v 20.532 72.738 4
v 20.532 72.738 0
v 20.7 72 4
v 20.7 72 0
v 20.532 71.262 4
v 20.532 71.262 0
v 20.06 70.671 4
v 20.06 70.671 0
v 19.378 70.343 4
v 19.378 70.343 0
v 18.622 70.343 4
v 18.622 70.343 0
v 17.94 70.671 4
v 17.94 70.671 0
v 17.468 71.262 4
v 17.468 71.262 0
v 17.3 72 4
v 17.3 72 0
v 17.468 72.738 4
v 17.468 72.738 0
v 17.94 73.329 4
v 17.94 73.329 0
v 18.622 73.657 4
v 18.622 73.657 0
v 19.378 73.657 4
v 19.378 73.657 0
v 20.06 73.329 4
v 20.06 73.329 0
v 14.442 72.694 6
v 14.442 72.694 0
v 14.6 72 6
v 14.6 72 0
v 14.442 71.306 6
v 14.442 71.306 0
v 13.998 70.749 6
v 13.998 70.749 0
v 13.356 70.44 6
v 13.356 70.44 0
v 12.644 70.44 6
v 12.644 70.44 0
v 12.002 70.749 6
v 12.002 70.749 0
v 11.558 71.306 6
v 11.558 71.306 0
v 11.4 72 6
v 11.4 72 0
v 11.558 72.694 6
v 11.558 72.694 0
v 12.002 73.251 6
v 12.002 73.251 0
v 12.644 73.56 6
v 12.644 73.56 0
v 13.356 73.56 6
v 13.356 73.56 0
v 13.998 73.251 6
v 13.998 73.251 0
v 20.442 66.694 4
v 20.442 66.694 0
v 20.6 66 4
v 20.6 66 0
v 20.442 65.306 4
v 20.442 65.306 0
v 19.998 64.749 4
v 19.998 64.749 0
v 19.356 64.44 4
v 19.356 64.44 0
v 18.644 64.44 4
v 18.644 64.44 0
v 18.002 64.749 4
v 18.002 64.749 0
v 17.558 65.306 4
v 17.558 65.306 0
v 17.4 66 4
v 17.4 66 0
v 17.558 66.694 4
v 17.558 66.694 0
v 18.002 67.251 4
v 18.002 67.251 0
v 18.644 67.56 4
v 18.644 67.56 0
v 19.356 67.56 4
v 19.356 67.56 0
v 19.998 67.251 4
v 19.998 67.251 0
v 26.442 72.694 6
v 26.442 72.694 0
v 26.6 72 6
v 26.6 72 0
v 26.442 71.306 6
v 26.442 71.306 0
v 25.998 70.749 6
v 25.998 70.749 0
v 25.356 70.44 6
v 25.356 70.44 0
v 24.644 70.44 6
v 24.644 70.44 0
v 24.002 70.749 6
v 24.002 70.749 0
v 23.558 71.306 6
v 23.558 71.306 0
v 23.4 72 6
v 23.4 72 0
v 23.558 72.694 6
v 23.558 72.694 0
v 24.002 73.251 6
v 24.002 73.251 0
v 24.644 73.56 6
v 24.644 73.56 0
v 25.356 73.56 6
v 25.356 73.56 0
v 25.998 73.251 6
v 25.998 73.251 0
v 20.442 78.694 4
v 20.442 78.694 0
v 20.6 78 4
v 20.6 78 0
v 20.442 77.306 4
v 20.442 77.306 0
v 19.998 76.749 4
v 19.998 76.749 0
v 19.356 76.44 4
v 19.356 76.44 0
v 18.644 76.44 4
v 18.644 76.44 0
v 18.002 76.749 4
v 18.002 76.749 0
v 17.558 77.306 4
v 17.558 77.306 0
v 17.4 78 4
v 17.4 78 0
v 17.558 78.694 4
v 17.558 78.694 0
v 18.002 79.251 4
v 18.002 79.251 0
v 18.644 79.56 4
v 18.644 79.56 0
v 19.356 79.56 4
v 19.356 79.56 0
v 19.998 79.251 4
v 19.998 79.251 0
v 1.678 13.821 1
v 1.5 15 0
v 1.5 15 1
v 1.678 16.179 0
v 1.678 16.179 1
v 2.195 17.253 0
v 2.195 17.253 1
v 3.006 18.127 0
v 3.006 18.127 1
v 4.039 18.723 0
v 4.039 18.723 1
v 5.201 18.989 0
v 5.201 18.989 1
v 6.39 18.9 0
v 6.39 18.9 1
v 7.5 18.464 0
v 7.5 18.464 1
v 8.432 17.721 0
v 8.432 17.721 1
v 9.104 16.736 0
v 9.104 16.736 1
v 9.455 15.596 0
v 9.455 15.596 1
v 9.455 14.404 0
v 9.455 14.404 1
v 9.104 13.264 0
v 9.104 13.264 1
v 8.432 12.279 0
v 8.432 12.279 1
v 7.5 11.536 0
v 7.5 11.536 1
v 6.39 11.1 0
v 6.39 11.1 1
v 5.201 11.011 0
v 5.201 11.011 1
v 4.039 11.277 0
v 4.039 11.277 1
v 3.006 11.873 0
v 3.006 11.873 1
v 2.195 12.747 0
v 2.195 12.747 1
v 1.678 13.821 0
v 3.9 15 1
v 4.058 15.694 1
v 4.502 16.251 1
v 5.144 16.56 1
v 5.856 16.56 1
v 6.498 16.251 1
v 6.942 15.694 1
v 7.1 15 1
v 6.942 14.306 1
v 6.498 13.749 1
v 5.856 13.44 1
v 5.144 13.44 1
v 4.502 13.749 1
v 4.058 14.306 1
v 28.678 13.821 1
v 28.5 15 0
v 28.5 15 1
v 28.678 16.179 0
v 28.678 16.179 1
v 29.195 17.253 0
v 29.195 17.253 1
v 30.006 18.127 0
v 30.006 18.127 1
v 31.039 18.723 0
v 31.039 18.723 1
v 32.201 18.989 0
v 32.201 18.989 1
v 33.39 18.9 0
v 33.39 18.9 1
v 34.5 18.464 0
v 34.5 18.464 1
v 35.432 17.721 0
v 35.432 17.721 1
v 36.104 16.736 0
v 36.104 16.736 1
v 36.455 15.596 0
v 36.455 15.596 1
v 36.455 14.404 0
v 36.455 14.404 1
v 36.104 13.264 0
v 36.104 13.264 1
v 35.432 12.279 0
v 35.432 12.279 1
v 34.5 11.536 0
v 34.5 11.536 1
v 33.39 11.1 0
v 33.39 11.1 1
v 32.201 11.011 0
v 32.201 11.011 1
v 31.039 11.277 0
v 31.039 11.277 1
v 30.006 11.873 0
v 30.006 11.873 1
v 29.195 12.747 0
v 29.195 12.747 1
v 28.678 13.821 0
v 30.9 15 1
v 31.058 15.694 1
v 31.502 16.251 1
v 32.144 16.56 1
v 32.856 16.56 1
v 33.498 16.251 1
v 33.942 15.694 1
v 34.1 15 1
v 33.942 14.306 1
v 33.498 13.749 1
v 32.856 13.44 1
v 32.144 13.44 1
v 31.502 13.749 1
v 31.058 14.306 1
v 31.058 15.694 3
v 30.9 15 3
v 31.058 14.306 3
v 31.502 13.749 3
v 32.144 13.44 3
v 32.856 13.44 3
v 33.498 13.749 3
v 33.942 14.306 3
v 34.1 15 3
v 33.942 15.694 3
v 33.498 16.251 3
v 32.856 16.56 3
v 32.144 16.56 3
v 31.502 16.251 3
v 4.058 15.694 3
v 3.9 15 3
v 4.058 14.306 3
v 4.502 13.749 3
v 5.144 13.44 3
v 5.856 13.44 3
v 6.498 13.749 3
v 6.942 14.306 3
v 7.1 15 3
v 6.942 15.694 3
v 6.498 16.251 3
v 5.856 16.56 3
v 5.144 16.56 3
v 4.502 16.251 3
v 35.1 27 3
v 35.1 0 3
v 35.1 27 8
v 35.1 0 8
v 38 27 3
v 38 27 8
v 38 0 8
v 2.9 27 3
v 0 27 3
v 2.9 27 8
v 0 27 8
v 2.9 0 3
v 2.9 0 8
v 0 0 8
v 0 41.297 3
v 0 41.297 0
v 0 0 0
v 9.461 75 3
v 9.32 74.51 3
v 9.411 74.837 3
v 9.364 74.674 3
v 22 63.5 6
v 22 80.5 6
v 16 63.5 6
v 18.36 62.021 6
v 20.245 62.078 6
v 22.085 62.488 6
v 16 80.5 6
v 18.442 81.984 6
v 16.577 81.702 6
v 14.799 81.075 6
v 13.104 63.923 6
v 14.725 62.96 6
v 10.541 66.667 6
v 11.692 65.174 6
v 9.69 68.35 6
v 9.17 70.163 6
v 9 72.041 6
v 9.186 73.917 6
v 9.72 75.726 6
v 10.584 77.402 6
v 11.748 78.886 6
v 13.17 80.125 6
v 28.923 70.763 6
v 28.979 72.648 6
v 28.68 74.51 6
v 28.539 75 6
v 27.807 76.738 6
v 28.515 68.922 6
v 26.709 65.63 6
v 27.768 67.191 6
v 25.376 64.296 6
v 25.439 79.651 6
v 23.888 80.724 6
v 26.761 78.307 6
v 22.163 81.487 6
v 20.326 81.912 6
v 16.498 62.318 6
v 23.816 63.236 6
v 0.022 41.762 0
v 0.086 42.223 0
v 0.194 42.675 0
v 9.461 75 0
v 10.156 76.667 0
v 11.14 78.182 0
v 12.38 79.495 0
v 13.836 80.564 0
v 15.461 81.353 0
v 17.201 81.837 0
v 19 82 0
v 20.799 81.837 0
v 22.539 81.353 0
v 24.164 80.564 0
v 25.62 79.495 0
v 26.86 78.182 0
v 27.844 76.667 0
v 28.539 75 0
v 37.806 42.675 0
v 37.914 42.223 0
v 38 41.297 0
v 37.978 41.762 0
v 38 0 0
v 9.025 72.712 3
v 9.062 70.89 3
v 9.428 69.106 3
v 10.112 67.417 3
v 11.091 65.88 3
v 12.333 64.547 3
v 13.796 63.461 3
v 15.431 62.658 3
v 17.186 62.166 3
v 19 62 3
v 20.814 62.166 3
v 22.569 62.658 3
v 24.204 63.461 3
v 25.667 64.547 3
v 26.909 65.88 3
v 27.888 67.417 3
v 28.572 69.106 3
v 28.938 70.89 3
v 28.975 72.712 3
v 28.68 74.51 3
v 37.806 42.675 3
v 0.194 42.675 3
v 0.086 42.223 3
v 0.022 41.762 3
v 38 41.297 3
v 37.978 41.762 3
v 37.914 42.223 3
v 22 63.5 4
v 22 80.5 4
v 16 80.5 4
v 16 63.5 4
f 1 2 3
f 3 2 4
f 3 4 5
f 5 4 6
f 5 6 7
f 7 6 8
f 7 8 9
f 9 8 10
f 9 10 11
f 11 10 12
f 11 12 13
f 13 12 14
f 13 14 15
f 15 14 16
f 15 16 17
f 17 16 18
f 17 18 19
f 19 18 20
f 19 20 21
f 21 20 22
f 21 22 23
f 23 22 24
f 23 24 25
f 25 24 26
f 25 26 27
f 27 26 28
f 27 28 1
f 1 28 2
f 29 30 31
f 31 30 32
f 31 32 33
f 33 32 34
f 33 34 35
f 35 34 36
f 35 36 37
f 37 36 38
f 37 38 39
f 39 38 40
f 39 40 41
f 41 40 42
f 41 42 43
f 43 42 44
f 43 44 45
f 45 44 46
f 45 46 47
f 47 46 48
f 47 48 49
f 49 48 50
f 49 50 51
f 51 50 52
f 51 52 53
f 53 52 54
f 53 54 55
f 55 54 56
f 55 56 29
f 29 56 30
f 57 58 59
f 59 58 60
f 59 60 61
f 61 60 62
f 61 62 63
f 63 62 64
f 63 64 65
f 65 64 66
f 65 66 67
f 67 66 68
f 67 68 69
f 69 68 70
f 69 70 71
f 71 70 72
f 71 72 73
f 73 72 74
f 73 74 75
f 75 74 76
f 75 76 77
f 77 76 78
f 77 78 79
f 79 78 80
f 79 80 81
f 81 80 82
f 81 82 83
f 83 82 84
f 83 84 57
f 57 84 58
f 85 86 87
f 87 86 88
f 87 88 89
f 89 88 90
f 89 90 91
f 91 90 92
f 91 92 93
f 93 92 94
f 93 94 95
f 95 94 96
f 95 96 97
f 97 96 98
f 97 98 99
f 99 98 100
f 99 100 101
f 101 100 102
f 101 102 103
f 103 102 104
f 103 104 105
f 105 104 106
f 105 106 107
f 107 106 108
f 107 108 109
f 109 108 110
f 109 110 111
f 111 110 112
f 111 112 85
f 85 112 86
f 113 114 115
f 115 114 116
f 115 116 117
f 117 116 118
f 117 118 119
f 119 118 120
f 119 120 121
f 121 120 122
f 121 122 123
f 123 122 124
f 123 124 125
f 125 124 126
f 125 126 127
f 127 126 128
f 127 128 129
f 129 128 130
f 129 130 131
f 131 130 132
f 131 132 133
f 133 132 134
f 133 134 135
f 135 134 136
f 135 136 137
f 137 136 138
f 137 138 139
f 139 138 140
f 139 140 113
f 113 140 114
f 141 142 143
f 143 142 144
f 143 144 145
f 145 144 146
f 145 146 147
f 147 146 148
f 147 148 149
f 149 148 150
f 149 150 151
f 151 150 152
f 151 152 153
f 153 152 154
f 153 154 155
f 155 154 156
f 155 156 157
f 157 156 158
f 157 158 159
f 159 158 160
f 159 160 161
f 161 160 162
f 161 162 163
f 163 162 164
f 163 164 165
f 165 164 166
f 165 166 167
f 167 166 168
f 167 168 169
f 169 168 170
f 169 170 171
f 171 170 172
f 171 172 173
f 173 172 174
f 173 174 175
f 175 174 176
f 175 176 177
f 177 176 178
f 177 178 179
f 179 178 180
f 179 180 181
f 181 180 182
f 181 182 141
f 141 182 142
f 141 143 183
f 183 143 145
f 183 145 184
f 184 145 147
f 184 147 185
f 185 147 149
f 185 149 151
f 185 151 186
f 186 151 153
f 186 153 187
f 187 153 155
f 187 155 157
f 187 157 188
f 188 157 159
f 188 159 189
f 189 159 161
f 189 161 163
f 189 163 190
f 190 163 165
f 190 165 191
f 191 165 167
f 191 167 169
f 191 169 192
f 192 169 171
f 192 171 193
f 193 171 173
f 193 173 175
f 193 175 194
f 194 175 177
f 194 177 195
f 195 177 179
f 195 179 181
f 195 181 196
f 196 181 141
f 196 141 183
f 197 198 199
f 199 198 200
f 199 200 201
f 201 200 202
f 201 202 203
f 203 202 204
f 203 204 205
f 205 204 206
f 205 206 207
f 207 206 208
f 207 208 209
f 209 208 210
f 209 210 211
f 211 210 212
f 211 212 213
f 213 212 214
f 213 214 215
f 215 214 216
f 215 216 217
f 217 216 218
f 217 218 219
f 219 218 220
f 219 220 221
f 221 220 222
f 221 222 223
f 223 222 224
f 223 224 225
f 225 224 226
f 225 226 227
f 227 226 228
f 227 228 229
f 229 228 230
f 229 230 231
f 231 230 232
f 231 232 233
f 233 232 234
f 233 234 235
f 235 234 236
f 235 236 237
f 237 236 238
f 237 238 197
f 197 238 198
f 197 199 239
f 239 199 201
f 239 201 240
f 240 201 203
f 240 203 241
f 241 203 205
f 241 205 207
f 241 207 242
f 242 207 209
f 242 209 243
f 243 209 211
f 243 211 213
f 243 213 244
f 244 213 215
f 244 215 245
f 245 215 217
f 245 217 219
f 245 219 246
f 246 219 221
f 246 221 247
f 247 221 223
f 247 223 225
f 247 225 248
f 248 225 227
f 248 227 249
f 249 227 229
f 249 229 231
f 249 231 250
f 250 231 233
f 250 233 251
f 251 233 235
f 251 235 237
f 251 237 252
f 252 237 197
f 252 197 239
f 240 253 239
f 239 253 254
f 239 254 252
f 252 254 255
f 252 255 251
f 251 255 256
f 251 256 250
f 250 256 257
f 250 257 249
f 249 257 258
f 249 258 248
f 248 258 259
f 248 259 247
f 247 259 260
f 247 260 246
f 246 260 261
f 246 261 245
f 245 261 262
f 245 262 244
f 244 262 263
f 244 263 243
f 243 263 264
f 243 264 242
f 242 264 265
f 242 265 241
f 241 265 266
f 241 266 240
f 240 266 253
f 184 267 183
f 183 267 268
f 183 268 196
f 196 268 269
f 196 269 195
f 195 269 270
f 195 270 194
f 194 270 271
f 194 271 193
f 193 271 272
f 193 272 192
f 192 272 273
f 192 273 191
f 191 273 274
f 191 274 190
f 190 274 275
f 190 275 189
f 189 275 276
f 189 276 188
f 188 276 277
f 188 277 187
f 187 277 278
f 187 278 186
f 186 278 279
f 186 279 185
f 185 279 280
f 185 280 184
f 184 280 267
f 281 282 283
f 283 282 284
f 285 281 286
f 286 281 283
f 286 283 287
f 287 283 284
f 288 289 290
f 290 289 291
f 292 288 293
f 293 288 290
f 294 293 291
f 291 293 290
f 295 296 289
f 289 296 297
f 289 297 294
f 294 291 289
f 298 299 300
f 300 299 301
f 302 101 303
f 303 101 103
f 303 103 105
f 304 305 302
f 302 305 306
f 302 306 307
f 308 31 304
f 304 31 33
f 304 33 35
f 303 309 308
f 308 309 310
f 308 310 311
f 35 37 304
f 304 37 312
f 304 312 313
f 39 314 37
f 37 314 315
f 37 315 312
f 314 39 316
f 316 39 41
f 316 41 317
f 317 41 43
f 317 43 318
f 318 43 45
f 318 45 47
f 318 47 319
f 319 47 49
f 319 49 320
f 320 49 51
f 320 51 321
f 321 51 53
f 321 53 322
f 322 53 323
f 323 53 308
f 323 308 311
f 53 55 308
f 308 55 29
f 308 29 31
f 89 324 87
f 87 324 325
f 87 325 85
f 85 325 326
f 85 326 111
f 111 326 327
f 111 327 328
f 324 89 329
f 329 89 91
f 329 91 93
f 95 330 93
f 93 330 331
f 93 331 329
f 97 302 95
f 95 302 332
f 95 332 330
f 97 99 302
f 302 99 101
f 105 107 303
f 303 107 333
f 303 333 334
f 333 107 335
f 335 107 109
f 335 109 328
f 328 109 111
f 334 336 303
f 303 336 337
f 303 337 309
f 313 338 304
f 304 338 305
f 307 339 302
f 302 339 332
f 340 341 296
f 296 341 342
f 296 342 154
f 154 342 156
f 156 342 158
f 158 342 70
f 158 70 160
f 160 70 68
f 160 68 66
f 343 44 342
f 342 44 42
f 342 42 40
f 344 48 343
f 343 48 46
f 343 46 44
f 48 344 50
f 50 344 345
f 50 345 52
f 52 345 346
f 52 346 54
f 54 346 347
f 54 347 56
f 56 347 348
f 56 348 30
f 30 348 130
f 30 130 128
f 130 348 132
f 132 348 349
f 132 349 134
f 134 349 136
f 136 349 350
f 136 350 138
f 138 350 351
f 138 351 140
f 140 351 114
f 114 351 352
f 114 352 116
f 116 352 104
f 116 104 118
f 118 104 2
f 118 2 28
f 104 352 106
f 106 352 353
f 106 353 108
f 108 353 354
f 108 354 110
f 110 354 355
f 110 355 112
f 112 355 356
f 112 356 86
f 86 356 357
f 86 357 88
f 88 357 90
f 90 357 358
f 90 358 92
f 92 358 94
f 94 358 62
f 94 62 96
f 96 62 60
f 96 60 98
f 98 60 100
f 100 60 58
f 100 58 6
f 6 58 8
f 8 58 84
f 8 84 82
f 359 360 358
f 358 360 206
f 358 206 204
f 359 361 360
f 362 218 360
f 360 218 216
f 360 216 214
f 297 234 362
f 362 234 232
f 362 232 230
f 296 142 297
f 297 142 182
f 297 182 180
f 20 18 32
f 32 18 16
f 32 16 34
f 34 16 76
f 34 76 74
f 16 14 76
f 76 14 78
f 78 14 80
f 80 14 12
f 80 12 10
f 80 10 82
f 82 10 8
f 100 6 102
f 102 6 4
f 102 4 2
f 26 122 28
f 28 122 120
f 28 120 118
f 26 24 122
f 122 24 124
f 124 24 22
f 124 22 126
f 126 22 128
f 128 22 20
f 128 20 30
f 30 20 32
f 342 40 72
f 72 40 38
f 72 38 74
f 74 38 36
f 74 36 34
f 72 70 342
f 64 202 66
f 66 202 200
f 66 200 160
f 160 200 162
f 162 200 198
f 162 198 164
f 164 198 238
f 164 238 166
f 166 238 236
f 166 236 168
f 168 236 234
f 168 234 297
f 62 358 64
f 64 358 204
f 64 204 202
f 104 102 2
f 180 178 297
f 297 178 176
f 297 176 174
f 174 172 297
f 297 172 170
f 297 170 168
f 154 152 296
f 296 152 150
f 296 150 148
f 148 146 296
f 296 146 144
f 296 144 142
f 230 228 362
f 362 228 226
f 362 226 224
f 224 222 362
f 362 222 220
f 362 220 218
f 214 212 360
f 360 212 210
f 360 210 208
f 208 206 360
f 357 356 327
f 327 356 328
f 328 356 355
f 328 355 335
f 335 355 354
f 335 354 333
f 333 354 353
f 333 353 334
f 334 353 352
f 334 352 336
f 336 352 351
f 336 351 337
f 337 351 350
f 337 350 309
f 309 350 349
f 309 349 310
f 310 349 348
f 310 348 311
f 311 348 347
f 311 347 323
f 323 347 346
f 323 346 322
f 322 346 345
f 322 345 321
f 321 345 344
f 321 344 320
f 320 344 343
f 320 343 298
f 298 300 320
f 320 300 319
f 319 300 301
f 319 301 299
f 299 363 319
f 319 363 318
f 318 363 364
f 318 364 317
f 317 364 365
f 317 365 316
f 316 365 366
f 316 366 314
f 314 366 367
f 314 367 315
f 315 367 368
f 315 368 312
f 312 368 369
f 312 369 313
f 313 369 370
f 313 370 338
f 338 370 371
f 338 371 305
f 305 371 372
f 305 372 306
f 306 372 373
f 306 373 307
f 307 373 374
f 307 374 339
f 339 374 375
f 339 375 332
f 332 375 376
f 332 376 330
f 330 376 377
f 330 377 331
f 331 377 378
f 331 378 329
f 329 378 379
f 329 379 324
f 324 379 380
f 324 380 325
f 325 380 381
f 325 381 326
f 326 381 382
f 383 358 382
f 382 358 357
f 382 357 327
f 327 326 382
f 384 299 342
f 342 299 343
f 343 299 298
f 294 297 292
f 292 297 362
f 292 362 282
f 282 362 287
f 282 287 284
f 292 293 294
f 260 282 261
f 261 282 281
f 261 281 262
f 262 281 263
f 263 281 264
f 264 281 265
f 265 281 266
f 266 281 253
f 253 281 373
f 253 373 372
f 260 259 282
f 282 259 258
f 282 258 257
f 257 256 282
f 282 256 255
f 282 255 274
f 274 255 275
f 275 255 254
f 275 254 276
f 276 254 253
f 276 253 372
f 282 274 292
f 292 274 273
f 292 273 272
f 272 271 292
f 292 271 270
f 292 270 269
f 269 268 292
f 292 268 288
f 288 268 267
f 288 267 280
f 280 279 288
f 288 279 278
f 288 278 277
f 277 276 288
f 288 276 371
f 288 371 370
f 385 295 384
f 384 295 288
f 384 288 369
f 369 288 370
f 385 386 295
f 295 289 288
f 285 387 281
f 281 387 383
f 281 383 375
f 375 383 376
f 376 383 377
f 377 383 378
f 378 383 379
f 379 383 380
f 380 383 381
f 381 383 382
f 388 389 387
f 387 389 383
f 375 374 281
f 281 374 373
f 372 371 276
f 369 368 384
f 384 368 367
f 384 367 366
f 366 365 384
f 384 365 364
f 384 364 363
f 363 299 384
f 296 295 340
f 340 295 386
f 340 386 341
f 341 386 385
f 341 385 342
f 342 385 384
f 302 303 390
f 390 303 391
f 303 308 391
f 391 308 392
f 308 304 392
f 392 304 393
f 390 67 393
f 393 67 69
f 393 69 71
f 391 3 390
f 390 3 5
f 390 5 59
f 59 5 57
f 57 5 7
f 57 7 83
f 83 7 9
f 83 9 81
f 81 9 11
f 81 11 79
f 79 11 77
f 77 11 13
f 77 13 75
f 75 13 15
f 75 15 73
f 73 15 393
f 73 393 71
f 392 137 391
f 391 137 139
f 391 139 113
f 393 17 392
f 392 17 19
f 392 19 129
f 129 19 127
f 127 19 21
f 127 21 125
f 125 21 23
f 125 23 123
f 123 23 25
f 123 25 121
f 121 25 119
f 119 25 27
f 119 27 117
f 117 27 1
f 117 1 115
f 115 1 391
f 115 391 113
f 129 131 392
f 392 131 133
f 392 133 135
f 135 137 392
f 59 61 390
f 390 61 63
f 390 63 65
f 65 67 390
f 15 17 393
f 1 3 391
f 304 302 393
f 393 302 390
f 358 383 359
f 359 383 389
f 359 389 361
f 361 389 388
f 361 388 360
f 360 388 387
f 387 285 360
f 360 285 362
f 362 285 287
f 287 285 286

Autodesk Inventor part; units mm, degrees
ref_plane "YZ Plane" through (0, 0, 0) normal (1, 0, 0) x (0, 1, 0)
ref_plane "XZ Plane" through (0, 0, 0) normal (0, 1, 0) x (-1, 0, 0)
ref_plane "XY Plane" through (0, 0, 0) normal (0, 0, 1) x (1, 0, 0)
sketch "スケッチ1" plane through (0, 0, 0) normal (0, 0, 1) x (1, 0, 0)
  line L0 (0, 0) -> (38, 0)
  line L1 (38, 0) -> (38, 42)
  line L2 (38, 42) -> (0, 42)
  line L3 (0, 42) -> (0, 0)
  line L4 (19, 42) -> (19, 72)
  circle A0 centre (19, 72) radius 10
  line L5 (9.4606, 75) -> (28.5394, 75)
  line L6 (9.4606, 75) -> (0, 42)
  line L7 (28.5394, 75) -> (38, 42)
  dimension "d0" = 42
  dimension "d1" = 38
  dimension "d2" = 30
  dimension "d3" = 20
  dimension "d4" = 3
extrude "押し出し1" add sketch "スケッチ1" along normal blind 3
sketch "スケッチ2" plane through (0, 0, 3) normal (0, 0, 1) x (1, 0, 0)
  line L0 (0, 0) -> (38, 0) projected
  line L1 (38, 0) -> (38, 42) projected
  line L2 (38, 42) -> (28.5394, 75) projected
  arc A0 (28.5394, 75) -> (9.4606, 75) centre (19, 72) ccw projected
  circle A1 centre (19, 72) radius 10
  point P0 (9.4606, 75)
  point P1 (28.6799, 74.5099)
extrude "押し出し2" add sketch "スケッチ2" along normal blind 3
sketch "スケッチ4" plane through (0, 0, 3) normal (0, 0, 1) x (1, 0, 0)
  line L0 (0, 42) -> (0, 0) projected
  line L1 (0, 0) -> (2.9, 0)
  line L2 (2.9, 0) -> (2.9, 27)
  line L3 (2.9, 27) -> (0, 27)
  line L4 (0, 27) -> (0, 0)
  line L5 (0, 0) -> (38, 0) projected
  line L6 (38, 0) -> (35.1, 0)
  line L7 (35.1, 0) -> (35.1, 27)
  line L8 (35.1, 27) -> (38, 27)
  line L9 (38, 27) -> (38, 0)
  point P0 (0, 27)
  dimension "d32" = 2.9
  dimension "d33" = 2.9
  dimension "d34" = 27
  dimension "d35" = 27
extrude "押し出し3" add sketch "スケッチ4" along normal blind 5
sketch "スケッチ5" plane through (0, 0, 3) normal (0, 0, 1) x (1, 0, 0)
  line L0 (2.9, 0) -> (35.1, 0) projected
  line L1 (35.1, 27) -> (35.1, 0) projected
  point P0 (0, 0)
  point P1 (5.5, 15)
  point P2 (32.5, 15)
  dimension "d38" = 15
  dimension "d39" = 15
  dimension "d40" = 2.6
  dimension "d41" = 27
hole "穴2" at (5.5, 15, 3) at (32.5, 15, 3) direction (0, 0, -1) diameter 3.2 end through all
sketch "スケッチ7" plane through (0, 0, 0) normal (0, 0, -1) x (-1, 0, 0)
  circle A0 centre (-32.5, 15) radius 1.6 projected
  circle A1 centre (-32.5, 15) radius 4
  circle A2 centre (-5.5, 15) radius 1.6 projected
  circle A3 centre (-5.5, 15) radius 4
  point P0 (0, 0)
  dimension "d58" = 8
  dimension "d59" = 8
extrude "押し出し4" cut sketch "スケッチ7" against normal blind 1
sketch "スケッチ8" plane through (0, 0, 0) normal (0, 0, -1) x (-1, 0, 0)
  circle A0 centre (-5.5, 15) radius 4 projected
  circle A1 centre (-32.5, 15) radius 4 projected
  line L0 (0, 42) -> (0, 0) projected
  line L1 (-9.4606, 75) -> (0, 42) projected
  arc A2 (-9.4606, 75) -> (-28.5394, 75) centre (-19, 72) ccw projected
  line L2 (-38, 42) -> (-28.5394, 75) projected
  line L3 (-38, 0) -> (-38, 42) projected
  line L4 (0, 0) -> (-38, 0) projected
  point P0 (-19, 78)
  point P1 (-25, 72)
  point P2 (-19, 66)
  point P3 (-13, 72)
  dimension "d62" = 6
  dimension "d65" = 360
hole "穴4" at (19, 78, 0) at (25, 72, 0) at (19, 66, 0) at (13, 72, 0) direction (0, 0, 1) diameter 3.2 end through all
sketch "スケッチ9" plane through (0, 0, 0) normal (0, 0, -1) x (-1, 0, 0)
  circle A0 centre (-13, 72) radius 1.6 projected
  circle A1 centre (-19, 66) radius 1.6 projected
  circle A2 centre (-25, 72) radius 1.6 projected
  circle A3 centre (-19, 78) radius 1.6 projected
  circle A4 centre (-5.5, 15) radius 4 projected
  circle A5 centre (-32.5, 15) radius 4 projected
  line L0 (0, 42) -> (0, 0) projected
  line L1 (-9.4606, 75) -> (0, 42) projected
  arc A6 (-9.4606, 75) -> (-28.5394, 75) centre (-19, 72) ccw projected
  line L2 (-38, 42) -> (-28.5394, 75) projected
  line L3 (-38, 0) -> (-38, 42) projected
  line L4 (0, 0) -> (-38, 0) projected
hole "穴5" at (19, 72, 0) direction (0, 0, 1) diameter 3.4 end through all
sketch "スケッチ10" plane through (0, 0, 6) normal (0, 0, 1) x (1, 0, 0)
  circle A0 centre (19, 72) radius 1.7 projected
  circle A1 centre (13, 72) radius 1.6 projected
  circle A2 centre (19, 66) radius 1.6 projected
  circle A3 centre (25, 72) radius 1.6 projected
  circle A4 centre (19, 78) radius 1.6 projected
  line L0 (28.6799, 74.5099) -> (28.5394, 75) projected
  arc A5 (28.5394, 75) -> (28.6799, 74.5099) centre (19, 72) ccw projected
  line L1 (16, 80.5) -> (22, 80.5)
  line L2 (22, 80.5) -> (22, 63.5)
  line L3 (22, 63.5) -> (16, 63.5)
  line L4 (16, 63.5) -> (16, 80.5)
  point P0 (0, 0)
  dimension "d81" = 8.5
  dimension "d82" = 17
  dimension "d83" = 6
  dimension "d84" = 3
extrude "押し出し5" cut sketch "スケッチ10" against normal blind 2 contours L1 L2 L3 L4
fillet "フィレット1" radius 5 2 edges at (38, 42, 1.5) (0, 42, 1.5)
properties part number "robot-arm-frame-output"
